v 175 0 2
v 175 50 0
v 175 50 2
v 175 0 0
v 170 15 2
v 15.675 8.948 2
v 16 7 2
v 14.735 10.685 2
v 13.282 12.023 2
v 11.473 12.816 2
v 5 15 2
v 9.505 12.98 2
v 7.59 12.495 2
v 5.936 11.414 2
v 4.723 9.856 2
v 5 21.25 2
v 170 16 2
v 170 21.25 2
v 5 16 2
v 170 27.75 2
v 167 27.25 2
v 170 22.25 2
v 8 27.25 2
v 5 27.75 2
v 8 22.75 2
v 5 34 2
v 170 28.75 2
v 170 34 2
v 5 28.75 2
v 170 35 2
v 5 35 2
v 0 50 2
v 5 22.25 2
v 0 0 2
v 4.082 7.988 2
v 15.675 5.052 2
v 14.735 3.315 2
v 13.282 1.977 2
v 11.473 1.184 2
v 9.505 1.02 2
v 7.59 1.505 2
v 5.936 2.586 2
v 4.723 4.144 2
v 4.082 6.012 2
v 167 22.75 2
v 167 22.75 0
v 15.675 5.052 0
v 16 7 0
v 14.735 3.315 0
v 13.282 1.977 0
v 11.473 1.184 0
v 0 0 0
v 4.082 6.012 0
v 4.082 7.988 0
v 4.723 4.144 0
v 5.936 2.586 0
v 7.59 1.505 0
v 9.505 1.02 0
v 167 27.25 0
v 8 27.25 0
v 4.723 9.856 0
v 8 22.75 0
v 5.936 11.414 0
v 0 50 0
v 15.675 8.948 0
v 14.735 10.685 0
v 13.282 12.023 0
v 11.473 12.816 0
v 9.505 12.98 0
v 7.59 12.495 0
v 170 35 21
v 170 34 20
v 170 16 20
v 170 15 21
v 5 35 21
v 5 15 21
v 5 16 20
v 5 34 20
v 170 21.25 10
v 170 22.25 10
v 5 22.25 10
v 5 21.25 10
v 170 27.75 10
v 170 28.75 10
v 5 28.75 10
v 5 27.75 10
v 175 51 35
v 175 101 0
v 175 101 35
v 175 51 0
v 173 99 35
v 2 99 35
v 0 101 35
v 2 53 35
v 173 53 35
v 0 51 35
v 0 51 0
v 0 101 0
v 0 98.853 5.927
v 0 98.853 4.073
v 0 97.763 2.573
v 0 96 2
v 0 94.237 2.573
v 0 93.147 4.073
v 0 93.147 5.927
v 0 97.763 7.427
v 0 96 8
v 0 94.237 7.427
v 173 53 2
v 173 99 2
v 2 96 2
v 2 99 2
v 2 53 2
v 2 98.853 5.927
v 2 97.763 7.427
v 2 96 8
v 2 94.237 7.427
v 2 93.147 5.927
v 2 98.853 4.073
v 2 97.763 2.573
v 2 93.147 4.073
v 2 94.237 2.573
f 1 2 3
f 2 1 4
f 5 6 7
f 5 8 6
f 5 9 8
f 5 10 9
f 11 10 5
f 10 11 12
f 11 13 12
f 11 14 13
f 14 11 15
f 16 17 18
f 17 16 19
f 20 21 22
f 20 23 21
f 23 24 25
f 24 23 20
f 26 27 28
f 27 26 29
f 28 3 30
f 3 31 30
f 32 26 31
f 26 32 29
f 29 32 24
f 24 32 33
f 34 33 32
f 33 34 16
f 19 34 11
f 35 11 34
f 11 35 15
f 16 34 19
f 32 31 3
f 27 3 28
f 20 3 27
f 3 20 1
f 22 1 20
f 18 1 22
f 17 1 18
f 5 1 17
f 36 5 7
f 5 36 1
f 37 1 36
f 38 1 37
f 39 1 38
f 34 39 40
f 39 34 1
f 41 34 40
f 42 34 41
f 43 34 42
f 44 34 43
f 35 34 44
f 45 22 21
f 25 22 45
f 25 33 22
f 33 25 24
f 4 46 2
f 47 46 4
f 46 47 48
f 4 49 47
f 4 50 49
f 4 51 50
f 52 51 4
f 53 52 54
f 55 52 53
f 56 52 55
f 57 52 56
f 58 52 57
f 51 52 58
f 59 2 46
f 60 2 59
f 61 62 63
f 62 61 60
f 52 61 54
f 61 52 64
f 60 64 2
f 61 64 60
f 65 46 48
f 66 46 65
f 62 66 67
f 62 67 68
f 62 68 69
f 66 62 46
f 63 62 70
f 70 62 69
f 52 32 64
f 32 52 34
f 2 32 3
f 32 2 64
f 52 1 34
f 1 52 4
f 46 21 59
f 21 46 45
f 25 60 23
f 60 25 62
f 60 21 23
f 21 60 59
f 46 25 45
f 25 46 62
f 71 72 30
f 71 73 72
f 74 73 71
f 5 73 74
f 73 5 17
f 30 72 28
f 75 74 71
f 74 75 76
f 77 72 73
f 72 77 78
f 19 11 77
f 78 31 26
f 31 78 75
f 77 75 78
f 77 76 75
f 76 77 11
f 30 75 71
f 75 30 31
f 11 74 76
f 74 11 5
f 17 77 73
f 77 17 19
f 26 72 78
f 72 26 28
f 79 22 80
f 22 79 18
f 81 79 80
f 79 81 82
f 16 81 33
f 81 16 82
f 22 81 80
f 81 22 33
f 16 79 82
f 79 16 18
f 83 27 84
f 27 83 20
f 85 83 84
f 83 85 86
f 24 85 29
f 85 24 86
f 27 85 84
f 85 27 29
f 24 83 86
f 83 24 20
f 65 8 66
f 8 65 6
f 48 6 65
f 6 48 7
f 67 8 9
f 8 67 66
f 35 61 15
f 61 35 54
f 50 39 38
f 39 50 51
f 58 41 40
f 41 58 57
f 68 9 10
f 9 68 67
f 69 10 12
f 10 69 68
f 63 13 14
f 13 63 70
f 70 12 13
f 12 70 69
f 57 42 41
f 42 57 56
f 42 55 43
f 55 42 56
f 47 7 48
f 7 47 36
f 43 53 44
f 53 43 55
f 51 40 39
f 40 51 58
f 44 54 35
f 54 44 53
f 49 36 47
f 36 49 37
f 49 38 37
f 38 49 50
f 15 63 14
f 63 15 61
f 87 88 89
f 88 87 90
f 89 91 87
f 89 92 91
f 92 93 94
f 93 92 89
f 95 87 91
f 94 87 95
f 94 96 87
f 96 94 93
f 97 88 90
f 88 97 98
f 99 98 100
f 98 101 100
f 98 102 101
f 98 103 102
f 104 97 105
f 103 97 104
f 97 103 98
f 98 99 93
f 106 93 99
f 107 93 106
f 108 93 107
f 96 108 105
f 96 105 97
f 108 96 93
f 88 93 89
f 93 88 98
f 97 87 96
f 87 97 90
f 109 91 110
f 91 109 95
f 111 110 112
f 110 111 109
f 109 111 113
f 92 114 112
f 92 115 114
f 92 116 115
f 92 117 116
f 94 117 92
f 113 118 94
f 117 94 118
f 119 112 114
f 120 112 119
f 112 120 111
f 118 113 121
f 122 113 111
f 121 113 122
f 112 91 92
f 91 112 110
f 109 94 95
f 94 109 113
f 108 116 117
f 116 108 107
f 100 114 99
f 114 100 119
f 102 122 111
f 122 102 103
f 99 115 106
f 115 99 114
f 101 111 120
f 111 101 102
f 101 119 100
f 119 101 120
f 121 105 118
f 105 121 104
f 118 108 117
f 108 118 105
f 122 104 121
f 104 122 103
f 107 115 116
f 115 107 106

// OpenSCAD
width=175;
height=35;
length=50;



module bottomBox() {
  difference() {
      cube([width, length, height]);
      translate([2,2,2]) cube([width-4, length-4, height]);
      translate([-10, length-5,5]) rotate([0, 90, 0]) cylinder(20, 3.0, 3.0); 
  }
}

//bottomBox();

module top() {
difference() {
    cube([width, length, 2]);
   translate([8, length / 2 - 4.5/2, -1]) cube([width- 16, 4.5, 4]);    
}    

color("red") translate([5, length/2 -10, 20])cube([width - 10, 20, 1]);
color("red") translate([5, length/2 -10, 0])cube([width - 10, 1, 20]);
color("red") translate([5, length/2 + 9, 0])cube([width - 10, 1, 20]);

color("yellow") translate([5, length/2 -4.5/2 -1.5, 0])cube([width - 10, 1, 10]);
color("yellow") translate([5, length/2 + 4.5/2 + 0.5, 0])cube([width - 10, 1, 10]);

}

translate([0, length +1,0 ]) bottomBox();
difference() {
    top();
      translate([10,7,-15]) cylinder(20, 6.0, 6.0) ;   
}
